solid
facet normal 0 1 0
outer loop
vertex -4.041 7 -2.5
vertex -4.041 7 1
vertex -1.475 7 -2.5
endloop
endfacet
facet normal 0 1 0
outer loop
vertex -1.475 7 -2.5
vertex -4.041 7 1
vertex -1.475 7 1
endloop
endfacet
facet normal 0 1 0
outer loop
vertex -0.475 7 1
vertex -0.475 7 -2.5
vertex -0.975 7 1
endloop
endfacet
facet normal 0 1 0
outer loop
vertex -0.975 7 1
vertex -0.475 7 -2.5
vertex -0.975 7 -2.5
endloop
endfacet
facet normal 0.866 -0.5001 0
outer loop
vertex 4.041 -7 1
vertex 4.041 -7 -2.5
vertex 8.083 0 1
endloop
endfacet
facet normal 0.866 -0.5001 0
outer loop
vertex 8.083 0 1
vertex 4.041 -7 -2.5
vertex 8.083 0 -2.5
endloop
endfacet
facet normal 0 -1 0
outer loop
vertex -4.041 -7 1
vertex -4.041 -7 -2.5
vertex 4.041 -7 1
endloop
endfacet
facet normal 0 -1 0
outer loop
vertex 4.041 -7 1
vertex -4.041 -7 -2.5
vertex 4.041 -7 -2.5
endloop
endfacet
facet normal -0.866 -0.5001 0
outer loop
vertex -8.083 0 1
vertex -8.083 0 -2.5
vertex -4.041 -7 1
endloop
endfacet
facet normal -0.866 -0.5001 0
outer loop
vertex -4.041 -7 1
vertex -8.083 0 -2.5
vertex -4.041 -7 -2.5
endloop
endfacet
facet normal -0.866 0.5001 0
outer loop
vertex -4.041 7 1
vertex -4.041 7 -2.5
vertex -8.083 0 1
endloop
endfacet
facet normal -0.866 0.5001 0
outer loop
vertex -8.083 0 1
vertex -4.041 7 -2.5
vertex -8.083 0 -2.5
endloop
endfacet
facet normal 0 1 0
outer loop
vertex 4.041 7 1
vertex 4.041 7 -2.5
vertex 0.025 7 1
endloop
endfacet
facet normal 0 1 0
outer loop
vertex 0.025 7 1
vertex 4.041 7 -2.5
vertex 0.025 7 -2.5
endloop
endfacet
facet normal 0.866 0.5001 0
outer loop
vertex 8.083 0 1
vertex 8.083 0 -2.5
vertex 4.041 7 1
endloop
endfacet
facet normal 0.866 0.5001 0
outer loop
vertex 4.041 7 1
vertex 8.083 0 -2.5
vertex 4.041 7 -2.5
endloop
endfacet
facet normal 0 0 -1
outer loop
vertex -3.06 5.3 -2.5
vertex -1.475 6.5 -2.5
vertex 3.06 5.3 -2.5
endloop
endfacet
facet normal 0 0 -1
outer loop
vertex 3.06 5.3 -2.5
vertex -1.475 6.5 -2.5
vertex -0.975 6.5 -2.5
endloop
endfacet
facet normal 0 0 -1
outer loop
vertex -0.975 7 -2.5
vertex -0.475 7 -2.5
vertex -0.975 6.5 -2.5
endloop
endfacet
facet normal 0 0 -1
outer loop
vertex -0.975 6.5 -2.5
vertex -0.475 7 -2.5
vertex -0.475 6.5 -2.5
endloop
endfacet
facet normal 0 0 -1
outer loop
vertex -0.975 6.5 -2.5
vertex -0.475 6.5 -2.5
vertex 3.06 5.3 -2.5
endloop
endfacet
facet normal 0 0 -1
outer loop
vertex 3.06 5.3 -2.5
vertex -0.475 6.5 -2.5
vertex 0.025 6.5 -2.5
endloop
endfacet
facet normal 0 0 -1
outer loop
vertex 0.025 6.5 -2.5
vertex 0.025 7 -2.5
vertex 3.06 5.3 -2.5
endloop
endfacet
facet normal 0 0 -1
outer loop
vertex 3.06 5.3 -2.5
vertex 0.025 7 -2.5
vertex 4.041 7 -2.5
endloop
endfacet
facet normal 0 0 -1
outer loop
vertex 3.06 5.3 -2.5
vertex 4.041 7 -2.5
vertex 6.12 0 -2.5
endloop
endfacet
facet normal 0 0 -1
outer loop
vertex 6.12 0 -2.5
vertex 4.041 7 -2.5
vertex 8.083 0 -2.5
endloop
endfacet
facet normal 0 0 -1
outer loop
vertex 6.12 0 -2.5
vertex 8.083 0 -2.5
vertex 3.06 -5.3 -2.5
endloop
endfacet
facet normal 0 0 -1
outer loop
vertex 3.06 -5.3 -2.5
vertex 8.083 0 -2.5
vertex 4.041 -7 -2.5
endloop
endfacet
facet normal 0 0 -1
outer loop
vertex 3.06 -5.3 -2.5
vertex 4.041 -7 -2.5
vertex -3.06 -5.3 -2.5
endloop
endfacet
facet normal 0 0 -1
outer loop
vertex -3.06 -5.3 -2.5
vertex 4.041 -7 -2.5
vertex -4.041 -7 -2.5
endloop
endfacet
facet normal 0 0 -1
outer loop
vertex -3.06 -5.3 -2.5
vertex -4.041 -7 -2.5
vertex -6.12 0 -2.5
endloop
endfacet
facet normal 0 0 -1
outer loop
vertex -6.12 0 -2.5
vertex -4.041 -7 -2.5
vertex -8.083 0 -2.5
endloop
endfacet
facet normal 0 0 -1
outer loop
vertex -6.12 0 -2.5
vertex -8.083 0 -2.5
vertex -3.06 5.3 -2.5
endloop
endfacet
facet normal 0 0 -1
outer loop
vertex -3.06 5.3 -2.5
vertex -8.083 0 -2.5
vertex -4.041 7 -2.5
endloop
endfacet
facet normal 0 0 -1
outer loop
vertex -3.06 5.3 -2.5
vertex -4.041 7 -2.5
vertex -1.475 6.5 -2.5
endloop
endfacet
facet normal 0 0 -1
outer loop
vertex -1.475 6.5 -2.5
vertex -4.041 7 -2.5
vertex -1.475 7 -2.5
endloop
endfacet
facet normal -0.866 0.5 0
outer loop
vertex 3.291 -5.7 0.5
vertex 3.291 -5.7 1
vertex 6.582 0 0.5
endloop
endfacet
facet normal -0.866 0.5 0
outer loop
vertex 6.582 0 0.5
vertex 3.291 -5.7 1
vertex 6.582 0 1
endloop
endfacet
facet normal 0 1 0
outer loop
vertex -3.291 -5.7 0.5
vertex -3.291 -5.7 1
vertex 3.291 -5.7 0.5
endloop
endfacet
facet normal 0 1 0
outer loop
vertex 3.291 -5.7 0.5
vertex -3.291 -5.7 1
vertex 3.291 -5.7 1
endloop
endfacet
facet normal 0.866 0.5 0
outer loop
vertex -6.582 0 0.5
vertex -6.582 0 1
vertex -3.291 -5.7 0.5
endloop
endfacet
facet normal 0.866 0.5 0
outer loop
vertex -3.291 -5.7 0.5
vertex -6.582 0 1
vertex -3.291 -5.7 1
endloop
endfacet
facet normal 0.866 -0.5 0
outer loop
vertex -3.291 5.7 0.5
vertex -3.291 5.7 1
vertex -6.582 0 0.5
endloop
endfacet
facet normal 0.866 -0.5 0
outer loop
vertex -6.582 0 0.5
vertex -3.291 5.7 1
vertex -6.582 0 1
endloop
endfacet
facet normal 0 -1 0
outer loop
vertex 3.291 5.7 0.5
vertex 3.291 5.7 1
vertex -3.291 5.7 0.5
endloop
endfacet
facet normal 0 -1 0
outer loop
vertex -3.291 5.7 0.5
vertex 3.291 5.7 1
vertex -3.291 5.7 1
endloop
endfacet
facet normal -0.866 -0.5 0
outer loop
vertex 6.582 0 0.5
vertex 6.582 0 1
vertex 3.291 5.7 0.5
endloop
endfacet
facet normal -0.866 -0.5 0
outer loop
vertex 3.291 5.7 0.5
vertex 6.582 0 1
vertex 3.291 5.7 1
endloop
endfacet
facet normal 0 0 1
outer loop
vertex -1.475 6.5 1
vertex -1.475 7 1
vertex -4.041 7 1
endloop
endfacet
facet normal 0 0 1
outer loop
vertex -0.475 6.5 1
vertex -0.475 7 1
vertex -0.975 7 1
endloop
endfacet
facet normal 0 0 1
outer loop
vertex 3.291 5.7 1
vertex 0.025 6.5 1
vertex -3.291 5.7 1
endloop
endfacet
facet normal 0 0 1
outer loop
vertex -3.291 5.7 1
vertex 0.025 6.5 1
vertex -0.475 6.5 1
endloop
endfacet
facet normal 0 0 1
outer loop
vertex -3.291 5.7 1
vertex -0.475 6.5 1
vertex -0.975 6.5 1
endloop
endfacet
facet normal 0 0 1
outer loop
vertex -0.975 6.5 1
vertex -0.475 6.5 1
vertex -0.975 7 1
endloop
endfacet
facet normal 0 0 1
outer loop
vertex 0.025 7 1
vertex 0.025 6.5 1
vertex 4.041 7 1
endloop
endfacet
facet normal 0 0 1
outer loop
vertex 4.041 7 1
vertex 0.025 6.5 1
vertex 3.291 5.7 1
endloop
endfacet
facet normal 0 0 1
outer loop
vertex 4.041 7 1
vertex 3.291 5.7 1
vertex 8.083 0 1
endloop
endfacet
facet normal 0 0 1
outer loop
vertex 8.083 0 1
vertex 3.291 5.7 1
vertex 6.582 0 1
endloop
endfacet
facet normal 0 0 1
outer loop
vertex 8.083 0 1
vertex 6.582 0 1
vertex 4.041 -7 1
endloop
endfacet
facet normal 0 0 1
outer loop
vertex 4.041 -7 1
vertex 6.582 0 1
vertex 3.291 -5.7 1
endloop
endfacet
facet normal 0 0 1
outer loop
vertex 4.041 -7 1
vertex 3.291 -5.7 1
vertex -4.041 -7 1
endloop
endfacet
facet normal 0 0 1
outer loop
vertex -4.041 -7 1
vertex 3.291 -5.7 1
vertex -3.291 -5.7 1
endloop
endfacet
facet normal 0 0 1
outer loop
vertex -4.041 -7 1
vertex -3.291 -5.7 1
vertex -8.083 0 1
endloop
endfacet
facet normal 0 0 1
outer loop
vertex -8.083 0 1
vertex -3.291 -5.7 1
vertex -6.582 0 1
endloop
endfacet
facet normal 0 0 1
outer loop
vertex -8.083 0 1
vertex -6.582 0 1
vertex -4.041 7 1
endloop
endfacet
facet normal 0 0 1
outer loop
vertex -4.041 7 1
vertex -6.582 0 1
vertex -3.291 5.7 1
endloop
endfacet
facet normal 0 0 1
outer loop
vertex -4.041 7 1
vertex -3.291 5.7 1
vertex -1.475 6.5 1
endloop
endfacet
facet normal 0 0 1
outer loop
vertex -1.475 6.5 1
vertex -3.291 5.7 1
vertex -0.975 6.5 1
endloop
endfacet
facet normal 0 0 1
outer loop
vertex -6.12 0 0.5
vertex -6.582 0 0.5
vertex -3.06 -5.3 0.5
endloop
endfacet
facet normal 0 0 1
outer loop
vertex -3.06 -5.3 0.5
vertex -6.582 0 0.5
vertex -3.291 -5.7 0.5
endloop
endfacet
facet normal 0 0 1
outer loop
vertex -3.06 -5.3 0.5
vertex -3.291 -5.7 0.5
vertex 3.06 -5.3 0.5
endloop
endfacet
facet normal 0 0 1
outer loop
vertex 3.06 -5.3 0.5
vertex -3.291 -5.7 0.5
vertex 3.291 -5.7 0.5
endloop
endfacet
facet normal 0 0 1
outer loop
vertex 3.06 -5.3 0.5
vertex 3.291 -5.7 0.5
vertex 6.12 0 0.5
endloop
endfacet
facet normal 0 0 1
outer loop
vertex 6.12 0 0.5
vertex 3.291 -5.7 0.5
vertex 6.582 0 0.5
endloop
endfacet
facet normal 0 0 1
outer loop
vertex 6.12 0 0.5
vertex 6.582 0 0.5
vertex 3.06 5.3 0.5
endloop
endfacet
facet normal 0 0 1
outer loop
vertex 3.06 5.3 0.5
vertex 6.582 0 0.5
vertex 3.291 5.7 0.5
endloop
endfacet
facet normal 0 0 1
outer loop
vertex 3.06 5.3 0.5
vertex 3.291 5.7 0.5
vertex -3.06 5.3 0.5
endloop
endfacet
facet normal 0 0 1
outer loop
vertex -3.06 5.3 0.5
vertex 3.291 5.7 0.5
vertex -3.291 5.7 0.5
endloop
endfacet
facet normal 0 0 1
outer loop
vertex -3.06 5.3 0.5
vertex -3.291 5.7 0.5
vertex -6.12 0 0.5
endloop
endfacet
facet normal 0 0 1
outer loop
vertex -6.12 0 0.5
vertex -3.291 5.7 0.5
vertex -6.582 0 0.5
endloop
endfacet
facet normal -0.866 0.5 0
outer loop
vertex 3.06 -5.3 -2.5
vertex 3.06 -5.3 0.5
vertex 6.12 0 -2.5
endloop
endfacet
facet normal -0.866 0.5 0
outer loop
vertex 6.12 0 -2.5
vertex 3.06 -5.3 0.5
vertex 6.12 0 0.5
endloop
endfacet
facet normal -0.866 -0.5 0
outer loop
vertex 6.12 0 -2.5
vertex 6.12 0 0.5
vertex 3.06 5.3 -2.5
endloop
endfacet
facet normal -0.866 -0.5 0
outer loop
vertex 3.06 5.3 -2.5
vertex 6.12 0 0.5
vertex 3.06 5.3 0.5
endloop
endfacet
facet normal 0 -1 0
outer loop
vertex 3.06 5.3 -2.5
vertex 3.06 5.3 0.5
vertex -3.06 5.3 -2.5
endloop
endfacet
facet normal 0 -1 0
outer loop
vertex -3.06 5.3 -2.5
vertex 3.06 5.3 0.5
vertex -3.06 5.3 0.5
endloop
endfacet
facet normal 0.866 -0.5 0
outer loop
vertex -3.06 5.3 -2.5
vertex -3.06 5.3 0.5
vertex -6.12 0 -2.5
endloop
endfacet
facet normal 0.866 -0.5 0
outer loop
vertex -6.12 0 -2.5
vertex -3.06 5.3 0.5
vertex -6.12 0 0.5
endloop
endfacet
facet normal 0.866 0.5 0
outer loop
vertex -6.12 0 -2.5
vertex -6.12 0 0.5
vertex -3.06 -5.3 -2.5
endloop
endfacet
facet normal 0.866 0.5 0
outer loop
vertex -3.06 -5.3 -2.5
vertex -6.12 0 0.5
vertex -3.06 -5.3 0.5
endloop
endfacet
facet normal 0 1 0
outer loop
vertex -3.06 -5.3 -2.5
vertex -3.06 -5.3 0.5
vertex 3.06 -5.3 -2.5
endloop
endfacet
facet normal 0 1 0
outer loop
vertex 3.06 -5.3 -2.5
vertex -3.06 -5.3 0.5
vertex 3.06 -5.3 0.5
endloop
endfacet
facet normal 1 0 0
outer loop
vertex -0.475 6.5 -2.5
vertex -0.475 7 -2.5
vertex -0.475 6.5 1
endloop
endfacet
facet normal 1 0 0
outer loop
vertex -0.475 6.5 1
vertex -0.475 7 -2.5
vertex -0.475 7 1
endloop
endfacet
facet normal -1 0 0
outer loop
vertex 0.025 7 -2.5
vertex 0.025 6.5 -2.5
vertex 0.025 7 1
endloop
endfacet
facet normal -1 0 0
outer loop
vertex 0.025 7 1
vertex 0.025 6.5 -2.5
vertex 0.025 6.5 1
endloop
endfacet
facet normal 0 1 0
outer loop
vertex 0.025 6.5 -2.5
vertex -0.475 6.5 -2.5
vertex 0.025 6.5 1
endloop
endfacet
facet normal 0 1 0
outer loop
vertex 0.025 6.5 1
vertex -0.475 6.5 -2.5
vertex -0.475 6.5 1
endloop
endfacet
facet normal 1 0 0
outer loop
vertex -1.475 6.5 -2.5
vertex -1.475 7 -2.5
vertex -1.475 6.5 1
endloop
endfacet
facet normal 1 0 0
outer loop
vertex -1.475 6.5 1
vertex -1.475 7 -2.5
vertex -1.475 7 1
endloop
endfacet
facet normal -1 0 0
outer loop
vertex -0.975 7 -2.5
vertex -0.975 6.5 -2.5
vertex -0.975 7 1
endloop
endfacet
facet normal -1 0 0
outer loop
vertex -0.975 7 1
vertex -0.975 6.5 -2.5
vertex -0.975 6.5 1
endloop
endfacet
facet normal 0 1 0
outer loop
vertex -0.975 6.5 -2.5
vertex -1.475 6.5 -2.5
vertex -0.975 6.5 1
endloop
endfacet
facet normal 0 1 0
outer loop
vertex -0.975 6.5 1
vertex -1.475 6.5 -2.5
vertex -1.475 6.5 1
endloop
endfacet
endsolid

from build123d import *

# Parameters (mm, degrees)
BOSS_EXTRUDE1_DEPTH      = 1
BOSS_EXTRUDE1_DEPTH_BACK = 2.5
BOSS_EXTRUDE2_DEPTH      = 0.5
BOSS_EXTRUDE2_DEPTH_BACK = 2.5
SKETCH4_W                = 0.5
SKETCH4_H                = 0.5
CUT_EXTRUDE1_DEPTH       = 12.250925888


with BuildPart() as part:
    # Sketch1 → Boss-Extrude1 (new, two sides: drawn at the far end of the back side and taken through both)
    with BuildSketch(Plane.XY.offset(-BOSS_EXTRUDE1_DEPTH_BACK)):
        Polygon((8.082903769, 0), (4.041451884, 7), (-4.041451884, 7), (-8.082903769, 0), (-4.041451884, -7), (4.041451884, -7), align=None)
        Polygon((6.581793069, 0), (3.290896534, 5.7), (-3.290896534, 5.7), (-6.581793069, 0), (-3.290896534, -5.7), (3.290896534, -5.7), align=None, mode=Mode.SUBTRACT)
    extrude(amount=BOSS_EXTRUDE1_DEPTH + BOSS_EXTRUDE1_DEPTH_BACK)

    # Sketch3 → Boss-Extrude2 (add, two sides: drawn at the far end of the back side and taken through both)
    with BuildSketch(Plane.XY.offset(-BOSS_EXTRUDE2_DEPTH_BACK)):
        Polygon((6.581793069, 0), (3.290896534, 5.7), (-3.290896534, 5.7), (-6.581793069, 0), (-3.290896534, -5.7), (3.290896534, -5.7), align=None)
        Polygon((6.119912853, 0), (3.059956427, 5.3), (-3.059956427, 5.3), (-6.119912853, 0), (-3.059956427, -5.3), (3.059956427, -5.3), align=None, mode=Mode.SUBTRACT)
    extrude(amount=BOSS_EXTRUDE2_DEPTH + BOSS_EXTRUDE2_DEPTH_BACK)

    # Sketch4 → Cut-Extrude1 (cut, through all)
    with BuildSketch(Plane.XY.offset(1)):
        with Locations((-1.224779595, 6.75)):
            Rectangle(SKETCH4_W, SKETCH4_H)
        with Locations((-0.224779595, 6.75)):
            Rectangle(SKETCH4_W, SKETCH4_H)
    extrude(amount=-CUT_EXTRUDE1_DEPTH, mode=Mode.SUBTRACT)


solid = part.part
